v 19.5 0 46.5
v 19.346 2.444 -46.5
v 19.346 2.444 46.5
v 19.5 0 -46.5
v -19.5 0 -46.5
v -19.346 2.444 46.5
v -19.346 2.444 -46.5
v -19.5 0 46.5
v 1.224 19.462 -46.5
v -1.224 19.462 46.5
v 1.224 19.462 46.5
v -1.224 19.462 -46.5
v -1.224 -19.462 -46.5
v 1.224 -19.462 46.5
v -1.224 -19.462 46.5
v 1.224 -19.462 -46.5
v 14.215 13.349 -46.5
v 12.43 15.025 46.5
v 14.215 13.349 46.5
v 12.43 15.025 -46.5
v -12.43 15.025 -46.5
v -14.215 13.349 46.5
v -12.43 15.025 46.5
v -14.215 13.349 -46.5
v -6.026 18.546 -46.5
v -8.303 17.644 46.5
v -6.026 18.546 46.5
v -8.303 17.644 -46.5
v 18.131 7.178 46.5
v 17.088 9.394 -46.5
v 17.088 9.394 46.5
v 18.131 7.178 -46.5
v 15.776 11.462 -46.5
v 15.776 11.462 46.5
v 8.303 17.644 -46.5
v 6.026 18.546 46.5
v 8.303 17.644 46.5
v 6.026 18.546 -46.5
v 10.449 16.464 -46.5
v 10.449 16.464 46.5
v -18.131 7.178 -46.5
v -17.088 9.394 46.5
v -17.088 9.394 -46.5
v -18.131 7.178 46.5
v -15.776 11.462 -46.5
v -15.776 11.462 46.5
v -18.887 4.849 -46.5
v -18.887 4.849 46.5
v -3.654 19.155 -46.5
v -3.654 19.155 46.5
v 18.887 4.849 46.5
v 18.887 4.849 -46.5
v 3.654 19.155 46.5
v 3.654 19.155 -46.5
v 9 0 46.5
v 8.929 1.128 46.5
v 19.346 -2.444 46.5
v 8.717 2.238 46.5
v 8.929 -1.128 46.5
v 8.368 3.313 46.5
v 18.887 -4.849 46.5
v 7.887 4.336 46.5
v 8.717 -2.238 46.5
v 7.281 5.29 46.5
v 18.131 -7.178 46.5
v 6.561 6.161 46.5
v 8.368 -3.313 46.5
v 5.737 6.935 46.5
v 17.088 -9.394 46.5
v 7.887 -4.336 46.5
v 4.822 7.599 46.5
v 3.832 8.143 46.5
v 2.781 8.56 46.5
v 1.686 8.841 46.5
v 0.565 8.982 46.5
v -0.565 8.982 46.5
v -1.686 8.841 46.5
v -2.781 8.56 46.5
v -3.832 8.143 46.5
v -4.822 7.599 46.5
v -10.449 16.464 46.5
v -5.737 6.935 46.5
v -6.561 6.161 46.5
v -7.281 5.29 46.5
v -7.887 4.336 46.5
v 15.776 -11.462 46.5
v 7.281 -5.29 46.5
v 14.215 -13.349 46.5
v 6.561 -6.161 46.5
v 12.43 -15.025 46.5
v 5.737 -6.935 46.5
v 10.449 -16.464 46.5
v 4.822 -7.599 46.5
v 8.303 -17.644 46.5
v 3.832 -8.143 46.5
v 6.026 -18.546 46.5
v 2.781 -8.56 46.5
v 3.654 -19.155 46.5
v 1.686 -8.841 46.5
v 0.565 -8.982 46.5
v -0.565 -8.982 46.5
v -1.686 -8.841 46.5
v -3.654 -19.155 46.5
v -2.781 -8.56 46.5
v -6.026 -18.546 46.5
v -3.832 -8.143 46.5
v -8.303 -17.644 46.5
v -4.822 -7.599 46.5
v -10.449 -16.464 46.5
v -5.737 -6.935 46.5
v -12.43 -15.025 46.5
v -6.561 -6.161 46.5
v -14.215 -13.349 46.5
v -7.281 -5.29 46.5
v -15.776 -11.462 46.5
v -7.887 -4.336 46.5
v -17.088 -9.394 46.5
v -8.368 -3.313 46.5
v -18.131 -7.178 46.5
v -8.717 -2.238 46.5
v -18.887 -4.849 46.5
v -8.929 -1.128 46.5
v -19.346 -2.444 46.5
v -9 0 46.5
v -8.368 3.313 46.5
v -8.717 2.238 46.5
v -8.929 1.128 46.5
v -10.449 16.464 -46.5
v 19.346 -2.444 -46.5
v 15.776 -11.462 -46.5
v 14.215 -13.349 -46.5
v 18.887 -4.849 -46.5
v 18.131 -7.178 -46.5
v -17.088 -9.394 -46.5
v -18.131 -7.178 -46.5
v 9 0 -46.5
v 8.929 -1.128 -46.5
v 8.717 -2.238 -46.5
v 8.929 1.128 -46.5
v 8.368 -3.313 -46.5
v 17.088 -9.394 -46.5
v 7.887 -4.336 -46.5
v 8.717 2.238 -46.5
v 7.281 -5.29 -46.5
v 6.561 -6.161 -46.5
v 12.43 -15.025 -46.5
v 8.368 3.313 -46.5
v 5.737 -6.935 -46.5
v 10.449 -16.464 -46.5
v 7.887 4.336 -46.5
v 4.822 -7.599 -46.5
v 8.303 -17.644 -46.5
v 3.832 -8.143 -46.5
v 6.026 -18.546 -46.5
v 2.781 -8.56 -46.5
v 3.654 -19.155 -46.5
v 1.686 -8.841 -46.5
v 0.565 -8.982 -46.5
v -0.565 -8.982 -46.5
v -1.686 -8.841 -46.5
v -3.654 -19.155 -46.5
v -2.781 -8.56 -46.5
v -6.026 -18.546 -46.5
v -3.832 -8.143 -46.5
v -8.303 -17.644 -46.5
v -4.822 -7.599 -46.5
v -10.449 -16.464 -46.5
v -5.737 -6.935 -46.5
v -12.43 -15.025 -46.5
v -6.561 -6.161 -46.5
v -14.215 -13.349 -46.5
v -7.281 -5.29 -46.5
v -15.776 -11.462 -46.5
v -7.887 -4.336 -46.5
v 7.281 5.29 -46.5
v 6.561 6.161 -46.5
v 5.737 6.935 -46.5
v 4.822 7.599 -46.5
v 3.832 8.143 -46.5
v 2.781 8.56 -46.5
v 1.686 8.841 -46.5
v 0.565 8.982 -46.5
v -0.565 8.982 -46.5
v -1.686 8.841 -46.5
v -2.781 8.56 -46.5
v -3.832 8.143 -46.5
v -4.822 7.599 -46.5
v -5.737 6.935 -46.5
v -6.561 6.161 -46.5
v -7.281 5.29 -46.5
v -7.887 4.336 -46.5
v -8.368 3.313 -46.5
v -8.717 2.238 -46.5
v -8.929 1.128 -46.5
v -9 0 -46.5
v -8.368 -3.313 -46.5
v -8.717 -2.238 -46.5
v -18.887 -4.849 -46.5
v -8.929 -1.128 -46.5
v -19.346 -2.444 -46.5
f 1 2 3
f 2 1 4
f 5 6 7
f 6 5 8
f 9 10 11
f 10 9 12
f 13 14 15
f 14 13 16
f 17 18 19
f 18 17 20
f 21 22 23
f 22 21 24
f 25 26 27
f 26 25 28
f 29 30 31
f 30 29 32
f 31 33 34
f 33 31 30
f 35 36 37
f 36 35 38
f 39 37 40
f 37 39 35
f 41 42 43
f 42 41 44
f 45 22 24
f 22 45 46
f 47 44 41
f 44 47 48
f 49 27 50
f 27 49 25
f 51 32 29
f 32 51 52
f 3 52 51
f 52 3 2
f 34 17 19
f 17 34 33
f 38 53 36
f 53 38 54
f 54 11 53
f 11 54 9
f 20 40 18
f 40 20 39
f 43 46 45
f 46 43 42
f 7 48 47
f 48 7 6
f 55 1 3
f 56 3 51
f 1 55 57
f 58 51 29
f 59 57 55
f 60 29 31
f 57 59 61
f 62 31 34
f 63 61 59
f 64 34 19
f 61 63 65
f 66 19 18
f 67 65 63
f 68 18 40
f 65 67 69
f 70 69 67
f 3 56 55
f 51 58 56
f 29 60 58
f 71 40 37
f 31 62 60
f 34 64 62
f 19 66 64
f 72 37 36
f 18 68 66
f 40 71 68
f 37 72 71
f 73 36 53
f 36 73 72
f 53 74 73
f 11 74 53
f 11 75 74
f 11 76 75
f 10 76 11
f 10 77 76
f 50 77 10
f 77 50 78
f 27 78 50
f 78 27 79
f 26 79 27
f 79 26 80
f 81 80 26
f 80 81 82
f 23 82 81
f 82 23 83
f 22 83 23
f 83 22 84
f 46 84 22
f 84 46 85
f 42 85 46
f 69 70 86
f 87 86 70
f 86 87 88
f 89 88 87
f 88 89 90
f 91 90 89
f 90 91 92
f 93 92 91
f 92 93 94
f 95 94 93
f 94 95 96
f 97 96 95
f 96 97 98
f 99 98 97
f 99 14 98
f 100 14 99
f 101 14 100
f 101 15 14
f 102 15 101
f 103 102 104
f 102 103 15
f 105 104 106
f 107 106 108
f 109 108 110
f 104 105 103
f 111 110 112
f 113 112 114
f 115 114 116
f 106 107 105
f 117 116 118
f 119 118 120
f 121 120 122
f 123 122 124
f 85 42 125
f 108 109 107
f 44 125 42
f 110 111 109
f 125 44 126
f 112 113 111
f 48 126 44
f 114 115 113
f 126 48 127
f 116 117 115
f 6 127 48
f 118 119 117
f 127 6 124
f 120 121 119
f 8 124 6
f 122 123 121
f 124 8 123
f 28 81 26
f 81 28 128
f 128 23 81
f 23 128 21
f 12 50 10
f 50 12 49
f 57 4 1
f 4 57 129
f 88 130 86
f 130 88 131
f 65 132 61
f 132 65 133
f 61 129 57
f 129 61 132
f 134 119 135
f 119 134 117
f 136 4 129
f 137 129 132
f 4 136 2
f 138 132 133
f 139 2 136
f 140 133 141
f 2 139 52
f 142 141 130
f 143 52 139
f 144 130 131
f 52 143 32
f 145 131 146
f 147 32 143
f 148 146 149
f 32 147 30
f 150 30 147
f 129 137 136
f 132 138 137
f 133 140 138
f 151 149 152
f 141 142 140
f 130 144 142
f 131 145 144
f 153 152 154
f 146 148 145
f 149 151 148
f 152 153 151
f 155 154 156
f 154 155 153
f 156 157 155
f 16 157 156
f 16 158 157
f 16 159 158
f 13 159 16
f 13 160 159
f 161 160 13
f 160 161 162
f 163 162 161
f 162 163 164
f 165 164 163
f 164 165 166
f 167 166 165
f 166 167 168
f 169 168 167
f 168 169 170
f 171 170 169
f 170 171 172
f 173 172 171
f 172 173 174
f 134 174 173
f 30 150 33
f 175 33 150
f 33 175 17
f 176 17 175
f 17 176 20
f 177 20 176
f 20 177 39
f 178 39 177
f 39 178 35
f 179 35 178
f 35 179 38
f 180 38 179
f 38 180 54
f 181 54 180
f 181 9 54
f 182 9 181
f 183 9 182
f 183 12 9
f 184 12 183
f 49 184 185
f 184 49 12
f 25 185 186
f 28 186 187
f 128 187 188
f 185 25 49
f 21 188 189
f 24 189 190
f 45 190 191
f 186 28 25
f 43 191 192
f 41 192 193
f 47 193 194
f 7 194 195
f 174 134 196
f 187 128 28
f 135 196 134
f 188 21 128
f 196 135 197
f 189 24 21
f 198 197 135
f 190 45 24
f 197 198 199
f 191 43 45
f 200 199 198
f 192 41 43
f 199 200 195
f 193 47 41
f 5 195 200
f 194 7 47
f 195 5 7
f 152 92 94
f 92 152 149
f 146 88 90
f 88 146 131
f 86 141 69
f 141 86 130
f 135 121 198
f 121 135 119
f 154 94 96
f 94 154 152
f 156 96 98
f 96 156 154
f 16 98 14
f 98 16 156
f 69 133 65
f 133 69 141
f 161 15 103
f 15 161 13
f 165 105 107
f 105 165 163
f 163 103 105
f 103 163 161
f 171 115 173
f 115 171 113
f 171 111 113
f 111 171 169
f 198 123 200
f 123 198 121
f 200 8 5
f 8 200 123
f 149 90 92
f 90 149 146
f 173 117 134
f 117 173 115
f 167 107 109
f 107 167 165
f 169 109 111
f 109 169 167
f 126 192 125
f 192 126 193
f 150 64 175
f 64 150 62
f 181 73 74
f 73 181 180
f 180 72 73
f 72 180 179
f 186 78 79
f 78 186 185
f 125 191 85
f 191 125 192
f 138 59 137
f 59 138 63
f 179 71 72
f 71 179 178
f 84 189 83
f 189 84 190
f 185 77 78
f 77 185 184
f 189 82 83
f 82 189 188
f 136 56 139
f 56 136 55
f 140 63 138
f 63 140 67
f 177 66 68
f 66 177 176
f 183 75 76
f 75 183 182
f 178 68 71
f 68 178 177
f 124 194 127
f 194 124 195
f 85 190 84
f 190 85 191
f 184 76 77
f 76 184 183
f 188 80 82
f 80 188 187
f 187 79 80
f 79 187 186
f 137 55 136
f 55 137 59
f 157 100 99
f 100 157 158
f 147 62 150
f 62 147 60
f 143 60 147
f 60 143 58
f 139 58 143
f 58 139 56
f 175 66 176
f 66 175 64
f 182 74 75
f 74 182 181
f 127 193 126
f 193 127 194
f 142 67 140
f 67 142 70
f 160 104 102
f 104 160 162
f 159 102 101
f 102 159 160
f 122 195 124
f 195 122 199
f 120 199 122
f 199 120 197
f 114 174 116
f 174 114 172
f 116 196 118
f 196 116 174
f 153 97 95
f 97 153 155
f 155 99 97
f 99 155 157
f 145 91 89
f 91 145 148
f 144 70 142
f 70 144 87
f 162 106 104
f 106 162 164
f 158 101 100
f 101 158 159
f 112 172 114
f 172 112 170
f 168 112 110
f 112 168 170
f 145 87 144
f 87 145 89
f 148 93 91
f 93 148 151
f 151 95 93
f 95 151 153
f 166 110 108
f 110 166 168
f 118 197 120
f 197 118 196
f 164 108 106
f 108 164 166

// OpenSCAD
$fn = 50;


difference() {
	union() {
		translate(v = [0, 0, -46.5000000000]) {
			cylinder(h = 93, r = 19.5000000000);
		}
	}
	union() {
		translate(v = [0, 0, -100.0000000000]) {
			cylinder(h = 200, r = 9);
		}
	}
}
